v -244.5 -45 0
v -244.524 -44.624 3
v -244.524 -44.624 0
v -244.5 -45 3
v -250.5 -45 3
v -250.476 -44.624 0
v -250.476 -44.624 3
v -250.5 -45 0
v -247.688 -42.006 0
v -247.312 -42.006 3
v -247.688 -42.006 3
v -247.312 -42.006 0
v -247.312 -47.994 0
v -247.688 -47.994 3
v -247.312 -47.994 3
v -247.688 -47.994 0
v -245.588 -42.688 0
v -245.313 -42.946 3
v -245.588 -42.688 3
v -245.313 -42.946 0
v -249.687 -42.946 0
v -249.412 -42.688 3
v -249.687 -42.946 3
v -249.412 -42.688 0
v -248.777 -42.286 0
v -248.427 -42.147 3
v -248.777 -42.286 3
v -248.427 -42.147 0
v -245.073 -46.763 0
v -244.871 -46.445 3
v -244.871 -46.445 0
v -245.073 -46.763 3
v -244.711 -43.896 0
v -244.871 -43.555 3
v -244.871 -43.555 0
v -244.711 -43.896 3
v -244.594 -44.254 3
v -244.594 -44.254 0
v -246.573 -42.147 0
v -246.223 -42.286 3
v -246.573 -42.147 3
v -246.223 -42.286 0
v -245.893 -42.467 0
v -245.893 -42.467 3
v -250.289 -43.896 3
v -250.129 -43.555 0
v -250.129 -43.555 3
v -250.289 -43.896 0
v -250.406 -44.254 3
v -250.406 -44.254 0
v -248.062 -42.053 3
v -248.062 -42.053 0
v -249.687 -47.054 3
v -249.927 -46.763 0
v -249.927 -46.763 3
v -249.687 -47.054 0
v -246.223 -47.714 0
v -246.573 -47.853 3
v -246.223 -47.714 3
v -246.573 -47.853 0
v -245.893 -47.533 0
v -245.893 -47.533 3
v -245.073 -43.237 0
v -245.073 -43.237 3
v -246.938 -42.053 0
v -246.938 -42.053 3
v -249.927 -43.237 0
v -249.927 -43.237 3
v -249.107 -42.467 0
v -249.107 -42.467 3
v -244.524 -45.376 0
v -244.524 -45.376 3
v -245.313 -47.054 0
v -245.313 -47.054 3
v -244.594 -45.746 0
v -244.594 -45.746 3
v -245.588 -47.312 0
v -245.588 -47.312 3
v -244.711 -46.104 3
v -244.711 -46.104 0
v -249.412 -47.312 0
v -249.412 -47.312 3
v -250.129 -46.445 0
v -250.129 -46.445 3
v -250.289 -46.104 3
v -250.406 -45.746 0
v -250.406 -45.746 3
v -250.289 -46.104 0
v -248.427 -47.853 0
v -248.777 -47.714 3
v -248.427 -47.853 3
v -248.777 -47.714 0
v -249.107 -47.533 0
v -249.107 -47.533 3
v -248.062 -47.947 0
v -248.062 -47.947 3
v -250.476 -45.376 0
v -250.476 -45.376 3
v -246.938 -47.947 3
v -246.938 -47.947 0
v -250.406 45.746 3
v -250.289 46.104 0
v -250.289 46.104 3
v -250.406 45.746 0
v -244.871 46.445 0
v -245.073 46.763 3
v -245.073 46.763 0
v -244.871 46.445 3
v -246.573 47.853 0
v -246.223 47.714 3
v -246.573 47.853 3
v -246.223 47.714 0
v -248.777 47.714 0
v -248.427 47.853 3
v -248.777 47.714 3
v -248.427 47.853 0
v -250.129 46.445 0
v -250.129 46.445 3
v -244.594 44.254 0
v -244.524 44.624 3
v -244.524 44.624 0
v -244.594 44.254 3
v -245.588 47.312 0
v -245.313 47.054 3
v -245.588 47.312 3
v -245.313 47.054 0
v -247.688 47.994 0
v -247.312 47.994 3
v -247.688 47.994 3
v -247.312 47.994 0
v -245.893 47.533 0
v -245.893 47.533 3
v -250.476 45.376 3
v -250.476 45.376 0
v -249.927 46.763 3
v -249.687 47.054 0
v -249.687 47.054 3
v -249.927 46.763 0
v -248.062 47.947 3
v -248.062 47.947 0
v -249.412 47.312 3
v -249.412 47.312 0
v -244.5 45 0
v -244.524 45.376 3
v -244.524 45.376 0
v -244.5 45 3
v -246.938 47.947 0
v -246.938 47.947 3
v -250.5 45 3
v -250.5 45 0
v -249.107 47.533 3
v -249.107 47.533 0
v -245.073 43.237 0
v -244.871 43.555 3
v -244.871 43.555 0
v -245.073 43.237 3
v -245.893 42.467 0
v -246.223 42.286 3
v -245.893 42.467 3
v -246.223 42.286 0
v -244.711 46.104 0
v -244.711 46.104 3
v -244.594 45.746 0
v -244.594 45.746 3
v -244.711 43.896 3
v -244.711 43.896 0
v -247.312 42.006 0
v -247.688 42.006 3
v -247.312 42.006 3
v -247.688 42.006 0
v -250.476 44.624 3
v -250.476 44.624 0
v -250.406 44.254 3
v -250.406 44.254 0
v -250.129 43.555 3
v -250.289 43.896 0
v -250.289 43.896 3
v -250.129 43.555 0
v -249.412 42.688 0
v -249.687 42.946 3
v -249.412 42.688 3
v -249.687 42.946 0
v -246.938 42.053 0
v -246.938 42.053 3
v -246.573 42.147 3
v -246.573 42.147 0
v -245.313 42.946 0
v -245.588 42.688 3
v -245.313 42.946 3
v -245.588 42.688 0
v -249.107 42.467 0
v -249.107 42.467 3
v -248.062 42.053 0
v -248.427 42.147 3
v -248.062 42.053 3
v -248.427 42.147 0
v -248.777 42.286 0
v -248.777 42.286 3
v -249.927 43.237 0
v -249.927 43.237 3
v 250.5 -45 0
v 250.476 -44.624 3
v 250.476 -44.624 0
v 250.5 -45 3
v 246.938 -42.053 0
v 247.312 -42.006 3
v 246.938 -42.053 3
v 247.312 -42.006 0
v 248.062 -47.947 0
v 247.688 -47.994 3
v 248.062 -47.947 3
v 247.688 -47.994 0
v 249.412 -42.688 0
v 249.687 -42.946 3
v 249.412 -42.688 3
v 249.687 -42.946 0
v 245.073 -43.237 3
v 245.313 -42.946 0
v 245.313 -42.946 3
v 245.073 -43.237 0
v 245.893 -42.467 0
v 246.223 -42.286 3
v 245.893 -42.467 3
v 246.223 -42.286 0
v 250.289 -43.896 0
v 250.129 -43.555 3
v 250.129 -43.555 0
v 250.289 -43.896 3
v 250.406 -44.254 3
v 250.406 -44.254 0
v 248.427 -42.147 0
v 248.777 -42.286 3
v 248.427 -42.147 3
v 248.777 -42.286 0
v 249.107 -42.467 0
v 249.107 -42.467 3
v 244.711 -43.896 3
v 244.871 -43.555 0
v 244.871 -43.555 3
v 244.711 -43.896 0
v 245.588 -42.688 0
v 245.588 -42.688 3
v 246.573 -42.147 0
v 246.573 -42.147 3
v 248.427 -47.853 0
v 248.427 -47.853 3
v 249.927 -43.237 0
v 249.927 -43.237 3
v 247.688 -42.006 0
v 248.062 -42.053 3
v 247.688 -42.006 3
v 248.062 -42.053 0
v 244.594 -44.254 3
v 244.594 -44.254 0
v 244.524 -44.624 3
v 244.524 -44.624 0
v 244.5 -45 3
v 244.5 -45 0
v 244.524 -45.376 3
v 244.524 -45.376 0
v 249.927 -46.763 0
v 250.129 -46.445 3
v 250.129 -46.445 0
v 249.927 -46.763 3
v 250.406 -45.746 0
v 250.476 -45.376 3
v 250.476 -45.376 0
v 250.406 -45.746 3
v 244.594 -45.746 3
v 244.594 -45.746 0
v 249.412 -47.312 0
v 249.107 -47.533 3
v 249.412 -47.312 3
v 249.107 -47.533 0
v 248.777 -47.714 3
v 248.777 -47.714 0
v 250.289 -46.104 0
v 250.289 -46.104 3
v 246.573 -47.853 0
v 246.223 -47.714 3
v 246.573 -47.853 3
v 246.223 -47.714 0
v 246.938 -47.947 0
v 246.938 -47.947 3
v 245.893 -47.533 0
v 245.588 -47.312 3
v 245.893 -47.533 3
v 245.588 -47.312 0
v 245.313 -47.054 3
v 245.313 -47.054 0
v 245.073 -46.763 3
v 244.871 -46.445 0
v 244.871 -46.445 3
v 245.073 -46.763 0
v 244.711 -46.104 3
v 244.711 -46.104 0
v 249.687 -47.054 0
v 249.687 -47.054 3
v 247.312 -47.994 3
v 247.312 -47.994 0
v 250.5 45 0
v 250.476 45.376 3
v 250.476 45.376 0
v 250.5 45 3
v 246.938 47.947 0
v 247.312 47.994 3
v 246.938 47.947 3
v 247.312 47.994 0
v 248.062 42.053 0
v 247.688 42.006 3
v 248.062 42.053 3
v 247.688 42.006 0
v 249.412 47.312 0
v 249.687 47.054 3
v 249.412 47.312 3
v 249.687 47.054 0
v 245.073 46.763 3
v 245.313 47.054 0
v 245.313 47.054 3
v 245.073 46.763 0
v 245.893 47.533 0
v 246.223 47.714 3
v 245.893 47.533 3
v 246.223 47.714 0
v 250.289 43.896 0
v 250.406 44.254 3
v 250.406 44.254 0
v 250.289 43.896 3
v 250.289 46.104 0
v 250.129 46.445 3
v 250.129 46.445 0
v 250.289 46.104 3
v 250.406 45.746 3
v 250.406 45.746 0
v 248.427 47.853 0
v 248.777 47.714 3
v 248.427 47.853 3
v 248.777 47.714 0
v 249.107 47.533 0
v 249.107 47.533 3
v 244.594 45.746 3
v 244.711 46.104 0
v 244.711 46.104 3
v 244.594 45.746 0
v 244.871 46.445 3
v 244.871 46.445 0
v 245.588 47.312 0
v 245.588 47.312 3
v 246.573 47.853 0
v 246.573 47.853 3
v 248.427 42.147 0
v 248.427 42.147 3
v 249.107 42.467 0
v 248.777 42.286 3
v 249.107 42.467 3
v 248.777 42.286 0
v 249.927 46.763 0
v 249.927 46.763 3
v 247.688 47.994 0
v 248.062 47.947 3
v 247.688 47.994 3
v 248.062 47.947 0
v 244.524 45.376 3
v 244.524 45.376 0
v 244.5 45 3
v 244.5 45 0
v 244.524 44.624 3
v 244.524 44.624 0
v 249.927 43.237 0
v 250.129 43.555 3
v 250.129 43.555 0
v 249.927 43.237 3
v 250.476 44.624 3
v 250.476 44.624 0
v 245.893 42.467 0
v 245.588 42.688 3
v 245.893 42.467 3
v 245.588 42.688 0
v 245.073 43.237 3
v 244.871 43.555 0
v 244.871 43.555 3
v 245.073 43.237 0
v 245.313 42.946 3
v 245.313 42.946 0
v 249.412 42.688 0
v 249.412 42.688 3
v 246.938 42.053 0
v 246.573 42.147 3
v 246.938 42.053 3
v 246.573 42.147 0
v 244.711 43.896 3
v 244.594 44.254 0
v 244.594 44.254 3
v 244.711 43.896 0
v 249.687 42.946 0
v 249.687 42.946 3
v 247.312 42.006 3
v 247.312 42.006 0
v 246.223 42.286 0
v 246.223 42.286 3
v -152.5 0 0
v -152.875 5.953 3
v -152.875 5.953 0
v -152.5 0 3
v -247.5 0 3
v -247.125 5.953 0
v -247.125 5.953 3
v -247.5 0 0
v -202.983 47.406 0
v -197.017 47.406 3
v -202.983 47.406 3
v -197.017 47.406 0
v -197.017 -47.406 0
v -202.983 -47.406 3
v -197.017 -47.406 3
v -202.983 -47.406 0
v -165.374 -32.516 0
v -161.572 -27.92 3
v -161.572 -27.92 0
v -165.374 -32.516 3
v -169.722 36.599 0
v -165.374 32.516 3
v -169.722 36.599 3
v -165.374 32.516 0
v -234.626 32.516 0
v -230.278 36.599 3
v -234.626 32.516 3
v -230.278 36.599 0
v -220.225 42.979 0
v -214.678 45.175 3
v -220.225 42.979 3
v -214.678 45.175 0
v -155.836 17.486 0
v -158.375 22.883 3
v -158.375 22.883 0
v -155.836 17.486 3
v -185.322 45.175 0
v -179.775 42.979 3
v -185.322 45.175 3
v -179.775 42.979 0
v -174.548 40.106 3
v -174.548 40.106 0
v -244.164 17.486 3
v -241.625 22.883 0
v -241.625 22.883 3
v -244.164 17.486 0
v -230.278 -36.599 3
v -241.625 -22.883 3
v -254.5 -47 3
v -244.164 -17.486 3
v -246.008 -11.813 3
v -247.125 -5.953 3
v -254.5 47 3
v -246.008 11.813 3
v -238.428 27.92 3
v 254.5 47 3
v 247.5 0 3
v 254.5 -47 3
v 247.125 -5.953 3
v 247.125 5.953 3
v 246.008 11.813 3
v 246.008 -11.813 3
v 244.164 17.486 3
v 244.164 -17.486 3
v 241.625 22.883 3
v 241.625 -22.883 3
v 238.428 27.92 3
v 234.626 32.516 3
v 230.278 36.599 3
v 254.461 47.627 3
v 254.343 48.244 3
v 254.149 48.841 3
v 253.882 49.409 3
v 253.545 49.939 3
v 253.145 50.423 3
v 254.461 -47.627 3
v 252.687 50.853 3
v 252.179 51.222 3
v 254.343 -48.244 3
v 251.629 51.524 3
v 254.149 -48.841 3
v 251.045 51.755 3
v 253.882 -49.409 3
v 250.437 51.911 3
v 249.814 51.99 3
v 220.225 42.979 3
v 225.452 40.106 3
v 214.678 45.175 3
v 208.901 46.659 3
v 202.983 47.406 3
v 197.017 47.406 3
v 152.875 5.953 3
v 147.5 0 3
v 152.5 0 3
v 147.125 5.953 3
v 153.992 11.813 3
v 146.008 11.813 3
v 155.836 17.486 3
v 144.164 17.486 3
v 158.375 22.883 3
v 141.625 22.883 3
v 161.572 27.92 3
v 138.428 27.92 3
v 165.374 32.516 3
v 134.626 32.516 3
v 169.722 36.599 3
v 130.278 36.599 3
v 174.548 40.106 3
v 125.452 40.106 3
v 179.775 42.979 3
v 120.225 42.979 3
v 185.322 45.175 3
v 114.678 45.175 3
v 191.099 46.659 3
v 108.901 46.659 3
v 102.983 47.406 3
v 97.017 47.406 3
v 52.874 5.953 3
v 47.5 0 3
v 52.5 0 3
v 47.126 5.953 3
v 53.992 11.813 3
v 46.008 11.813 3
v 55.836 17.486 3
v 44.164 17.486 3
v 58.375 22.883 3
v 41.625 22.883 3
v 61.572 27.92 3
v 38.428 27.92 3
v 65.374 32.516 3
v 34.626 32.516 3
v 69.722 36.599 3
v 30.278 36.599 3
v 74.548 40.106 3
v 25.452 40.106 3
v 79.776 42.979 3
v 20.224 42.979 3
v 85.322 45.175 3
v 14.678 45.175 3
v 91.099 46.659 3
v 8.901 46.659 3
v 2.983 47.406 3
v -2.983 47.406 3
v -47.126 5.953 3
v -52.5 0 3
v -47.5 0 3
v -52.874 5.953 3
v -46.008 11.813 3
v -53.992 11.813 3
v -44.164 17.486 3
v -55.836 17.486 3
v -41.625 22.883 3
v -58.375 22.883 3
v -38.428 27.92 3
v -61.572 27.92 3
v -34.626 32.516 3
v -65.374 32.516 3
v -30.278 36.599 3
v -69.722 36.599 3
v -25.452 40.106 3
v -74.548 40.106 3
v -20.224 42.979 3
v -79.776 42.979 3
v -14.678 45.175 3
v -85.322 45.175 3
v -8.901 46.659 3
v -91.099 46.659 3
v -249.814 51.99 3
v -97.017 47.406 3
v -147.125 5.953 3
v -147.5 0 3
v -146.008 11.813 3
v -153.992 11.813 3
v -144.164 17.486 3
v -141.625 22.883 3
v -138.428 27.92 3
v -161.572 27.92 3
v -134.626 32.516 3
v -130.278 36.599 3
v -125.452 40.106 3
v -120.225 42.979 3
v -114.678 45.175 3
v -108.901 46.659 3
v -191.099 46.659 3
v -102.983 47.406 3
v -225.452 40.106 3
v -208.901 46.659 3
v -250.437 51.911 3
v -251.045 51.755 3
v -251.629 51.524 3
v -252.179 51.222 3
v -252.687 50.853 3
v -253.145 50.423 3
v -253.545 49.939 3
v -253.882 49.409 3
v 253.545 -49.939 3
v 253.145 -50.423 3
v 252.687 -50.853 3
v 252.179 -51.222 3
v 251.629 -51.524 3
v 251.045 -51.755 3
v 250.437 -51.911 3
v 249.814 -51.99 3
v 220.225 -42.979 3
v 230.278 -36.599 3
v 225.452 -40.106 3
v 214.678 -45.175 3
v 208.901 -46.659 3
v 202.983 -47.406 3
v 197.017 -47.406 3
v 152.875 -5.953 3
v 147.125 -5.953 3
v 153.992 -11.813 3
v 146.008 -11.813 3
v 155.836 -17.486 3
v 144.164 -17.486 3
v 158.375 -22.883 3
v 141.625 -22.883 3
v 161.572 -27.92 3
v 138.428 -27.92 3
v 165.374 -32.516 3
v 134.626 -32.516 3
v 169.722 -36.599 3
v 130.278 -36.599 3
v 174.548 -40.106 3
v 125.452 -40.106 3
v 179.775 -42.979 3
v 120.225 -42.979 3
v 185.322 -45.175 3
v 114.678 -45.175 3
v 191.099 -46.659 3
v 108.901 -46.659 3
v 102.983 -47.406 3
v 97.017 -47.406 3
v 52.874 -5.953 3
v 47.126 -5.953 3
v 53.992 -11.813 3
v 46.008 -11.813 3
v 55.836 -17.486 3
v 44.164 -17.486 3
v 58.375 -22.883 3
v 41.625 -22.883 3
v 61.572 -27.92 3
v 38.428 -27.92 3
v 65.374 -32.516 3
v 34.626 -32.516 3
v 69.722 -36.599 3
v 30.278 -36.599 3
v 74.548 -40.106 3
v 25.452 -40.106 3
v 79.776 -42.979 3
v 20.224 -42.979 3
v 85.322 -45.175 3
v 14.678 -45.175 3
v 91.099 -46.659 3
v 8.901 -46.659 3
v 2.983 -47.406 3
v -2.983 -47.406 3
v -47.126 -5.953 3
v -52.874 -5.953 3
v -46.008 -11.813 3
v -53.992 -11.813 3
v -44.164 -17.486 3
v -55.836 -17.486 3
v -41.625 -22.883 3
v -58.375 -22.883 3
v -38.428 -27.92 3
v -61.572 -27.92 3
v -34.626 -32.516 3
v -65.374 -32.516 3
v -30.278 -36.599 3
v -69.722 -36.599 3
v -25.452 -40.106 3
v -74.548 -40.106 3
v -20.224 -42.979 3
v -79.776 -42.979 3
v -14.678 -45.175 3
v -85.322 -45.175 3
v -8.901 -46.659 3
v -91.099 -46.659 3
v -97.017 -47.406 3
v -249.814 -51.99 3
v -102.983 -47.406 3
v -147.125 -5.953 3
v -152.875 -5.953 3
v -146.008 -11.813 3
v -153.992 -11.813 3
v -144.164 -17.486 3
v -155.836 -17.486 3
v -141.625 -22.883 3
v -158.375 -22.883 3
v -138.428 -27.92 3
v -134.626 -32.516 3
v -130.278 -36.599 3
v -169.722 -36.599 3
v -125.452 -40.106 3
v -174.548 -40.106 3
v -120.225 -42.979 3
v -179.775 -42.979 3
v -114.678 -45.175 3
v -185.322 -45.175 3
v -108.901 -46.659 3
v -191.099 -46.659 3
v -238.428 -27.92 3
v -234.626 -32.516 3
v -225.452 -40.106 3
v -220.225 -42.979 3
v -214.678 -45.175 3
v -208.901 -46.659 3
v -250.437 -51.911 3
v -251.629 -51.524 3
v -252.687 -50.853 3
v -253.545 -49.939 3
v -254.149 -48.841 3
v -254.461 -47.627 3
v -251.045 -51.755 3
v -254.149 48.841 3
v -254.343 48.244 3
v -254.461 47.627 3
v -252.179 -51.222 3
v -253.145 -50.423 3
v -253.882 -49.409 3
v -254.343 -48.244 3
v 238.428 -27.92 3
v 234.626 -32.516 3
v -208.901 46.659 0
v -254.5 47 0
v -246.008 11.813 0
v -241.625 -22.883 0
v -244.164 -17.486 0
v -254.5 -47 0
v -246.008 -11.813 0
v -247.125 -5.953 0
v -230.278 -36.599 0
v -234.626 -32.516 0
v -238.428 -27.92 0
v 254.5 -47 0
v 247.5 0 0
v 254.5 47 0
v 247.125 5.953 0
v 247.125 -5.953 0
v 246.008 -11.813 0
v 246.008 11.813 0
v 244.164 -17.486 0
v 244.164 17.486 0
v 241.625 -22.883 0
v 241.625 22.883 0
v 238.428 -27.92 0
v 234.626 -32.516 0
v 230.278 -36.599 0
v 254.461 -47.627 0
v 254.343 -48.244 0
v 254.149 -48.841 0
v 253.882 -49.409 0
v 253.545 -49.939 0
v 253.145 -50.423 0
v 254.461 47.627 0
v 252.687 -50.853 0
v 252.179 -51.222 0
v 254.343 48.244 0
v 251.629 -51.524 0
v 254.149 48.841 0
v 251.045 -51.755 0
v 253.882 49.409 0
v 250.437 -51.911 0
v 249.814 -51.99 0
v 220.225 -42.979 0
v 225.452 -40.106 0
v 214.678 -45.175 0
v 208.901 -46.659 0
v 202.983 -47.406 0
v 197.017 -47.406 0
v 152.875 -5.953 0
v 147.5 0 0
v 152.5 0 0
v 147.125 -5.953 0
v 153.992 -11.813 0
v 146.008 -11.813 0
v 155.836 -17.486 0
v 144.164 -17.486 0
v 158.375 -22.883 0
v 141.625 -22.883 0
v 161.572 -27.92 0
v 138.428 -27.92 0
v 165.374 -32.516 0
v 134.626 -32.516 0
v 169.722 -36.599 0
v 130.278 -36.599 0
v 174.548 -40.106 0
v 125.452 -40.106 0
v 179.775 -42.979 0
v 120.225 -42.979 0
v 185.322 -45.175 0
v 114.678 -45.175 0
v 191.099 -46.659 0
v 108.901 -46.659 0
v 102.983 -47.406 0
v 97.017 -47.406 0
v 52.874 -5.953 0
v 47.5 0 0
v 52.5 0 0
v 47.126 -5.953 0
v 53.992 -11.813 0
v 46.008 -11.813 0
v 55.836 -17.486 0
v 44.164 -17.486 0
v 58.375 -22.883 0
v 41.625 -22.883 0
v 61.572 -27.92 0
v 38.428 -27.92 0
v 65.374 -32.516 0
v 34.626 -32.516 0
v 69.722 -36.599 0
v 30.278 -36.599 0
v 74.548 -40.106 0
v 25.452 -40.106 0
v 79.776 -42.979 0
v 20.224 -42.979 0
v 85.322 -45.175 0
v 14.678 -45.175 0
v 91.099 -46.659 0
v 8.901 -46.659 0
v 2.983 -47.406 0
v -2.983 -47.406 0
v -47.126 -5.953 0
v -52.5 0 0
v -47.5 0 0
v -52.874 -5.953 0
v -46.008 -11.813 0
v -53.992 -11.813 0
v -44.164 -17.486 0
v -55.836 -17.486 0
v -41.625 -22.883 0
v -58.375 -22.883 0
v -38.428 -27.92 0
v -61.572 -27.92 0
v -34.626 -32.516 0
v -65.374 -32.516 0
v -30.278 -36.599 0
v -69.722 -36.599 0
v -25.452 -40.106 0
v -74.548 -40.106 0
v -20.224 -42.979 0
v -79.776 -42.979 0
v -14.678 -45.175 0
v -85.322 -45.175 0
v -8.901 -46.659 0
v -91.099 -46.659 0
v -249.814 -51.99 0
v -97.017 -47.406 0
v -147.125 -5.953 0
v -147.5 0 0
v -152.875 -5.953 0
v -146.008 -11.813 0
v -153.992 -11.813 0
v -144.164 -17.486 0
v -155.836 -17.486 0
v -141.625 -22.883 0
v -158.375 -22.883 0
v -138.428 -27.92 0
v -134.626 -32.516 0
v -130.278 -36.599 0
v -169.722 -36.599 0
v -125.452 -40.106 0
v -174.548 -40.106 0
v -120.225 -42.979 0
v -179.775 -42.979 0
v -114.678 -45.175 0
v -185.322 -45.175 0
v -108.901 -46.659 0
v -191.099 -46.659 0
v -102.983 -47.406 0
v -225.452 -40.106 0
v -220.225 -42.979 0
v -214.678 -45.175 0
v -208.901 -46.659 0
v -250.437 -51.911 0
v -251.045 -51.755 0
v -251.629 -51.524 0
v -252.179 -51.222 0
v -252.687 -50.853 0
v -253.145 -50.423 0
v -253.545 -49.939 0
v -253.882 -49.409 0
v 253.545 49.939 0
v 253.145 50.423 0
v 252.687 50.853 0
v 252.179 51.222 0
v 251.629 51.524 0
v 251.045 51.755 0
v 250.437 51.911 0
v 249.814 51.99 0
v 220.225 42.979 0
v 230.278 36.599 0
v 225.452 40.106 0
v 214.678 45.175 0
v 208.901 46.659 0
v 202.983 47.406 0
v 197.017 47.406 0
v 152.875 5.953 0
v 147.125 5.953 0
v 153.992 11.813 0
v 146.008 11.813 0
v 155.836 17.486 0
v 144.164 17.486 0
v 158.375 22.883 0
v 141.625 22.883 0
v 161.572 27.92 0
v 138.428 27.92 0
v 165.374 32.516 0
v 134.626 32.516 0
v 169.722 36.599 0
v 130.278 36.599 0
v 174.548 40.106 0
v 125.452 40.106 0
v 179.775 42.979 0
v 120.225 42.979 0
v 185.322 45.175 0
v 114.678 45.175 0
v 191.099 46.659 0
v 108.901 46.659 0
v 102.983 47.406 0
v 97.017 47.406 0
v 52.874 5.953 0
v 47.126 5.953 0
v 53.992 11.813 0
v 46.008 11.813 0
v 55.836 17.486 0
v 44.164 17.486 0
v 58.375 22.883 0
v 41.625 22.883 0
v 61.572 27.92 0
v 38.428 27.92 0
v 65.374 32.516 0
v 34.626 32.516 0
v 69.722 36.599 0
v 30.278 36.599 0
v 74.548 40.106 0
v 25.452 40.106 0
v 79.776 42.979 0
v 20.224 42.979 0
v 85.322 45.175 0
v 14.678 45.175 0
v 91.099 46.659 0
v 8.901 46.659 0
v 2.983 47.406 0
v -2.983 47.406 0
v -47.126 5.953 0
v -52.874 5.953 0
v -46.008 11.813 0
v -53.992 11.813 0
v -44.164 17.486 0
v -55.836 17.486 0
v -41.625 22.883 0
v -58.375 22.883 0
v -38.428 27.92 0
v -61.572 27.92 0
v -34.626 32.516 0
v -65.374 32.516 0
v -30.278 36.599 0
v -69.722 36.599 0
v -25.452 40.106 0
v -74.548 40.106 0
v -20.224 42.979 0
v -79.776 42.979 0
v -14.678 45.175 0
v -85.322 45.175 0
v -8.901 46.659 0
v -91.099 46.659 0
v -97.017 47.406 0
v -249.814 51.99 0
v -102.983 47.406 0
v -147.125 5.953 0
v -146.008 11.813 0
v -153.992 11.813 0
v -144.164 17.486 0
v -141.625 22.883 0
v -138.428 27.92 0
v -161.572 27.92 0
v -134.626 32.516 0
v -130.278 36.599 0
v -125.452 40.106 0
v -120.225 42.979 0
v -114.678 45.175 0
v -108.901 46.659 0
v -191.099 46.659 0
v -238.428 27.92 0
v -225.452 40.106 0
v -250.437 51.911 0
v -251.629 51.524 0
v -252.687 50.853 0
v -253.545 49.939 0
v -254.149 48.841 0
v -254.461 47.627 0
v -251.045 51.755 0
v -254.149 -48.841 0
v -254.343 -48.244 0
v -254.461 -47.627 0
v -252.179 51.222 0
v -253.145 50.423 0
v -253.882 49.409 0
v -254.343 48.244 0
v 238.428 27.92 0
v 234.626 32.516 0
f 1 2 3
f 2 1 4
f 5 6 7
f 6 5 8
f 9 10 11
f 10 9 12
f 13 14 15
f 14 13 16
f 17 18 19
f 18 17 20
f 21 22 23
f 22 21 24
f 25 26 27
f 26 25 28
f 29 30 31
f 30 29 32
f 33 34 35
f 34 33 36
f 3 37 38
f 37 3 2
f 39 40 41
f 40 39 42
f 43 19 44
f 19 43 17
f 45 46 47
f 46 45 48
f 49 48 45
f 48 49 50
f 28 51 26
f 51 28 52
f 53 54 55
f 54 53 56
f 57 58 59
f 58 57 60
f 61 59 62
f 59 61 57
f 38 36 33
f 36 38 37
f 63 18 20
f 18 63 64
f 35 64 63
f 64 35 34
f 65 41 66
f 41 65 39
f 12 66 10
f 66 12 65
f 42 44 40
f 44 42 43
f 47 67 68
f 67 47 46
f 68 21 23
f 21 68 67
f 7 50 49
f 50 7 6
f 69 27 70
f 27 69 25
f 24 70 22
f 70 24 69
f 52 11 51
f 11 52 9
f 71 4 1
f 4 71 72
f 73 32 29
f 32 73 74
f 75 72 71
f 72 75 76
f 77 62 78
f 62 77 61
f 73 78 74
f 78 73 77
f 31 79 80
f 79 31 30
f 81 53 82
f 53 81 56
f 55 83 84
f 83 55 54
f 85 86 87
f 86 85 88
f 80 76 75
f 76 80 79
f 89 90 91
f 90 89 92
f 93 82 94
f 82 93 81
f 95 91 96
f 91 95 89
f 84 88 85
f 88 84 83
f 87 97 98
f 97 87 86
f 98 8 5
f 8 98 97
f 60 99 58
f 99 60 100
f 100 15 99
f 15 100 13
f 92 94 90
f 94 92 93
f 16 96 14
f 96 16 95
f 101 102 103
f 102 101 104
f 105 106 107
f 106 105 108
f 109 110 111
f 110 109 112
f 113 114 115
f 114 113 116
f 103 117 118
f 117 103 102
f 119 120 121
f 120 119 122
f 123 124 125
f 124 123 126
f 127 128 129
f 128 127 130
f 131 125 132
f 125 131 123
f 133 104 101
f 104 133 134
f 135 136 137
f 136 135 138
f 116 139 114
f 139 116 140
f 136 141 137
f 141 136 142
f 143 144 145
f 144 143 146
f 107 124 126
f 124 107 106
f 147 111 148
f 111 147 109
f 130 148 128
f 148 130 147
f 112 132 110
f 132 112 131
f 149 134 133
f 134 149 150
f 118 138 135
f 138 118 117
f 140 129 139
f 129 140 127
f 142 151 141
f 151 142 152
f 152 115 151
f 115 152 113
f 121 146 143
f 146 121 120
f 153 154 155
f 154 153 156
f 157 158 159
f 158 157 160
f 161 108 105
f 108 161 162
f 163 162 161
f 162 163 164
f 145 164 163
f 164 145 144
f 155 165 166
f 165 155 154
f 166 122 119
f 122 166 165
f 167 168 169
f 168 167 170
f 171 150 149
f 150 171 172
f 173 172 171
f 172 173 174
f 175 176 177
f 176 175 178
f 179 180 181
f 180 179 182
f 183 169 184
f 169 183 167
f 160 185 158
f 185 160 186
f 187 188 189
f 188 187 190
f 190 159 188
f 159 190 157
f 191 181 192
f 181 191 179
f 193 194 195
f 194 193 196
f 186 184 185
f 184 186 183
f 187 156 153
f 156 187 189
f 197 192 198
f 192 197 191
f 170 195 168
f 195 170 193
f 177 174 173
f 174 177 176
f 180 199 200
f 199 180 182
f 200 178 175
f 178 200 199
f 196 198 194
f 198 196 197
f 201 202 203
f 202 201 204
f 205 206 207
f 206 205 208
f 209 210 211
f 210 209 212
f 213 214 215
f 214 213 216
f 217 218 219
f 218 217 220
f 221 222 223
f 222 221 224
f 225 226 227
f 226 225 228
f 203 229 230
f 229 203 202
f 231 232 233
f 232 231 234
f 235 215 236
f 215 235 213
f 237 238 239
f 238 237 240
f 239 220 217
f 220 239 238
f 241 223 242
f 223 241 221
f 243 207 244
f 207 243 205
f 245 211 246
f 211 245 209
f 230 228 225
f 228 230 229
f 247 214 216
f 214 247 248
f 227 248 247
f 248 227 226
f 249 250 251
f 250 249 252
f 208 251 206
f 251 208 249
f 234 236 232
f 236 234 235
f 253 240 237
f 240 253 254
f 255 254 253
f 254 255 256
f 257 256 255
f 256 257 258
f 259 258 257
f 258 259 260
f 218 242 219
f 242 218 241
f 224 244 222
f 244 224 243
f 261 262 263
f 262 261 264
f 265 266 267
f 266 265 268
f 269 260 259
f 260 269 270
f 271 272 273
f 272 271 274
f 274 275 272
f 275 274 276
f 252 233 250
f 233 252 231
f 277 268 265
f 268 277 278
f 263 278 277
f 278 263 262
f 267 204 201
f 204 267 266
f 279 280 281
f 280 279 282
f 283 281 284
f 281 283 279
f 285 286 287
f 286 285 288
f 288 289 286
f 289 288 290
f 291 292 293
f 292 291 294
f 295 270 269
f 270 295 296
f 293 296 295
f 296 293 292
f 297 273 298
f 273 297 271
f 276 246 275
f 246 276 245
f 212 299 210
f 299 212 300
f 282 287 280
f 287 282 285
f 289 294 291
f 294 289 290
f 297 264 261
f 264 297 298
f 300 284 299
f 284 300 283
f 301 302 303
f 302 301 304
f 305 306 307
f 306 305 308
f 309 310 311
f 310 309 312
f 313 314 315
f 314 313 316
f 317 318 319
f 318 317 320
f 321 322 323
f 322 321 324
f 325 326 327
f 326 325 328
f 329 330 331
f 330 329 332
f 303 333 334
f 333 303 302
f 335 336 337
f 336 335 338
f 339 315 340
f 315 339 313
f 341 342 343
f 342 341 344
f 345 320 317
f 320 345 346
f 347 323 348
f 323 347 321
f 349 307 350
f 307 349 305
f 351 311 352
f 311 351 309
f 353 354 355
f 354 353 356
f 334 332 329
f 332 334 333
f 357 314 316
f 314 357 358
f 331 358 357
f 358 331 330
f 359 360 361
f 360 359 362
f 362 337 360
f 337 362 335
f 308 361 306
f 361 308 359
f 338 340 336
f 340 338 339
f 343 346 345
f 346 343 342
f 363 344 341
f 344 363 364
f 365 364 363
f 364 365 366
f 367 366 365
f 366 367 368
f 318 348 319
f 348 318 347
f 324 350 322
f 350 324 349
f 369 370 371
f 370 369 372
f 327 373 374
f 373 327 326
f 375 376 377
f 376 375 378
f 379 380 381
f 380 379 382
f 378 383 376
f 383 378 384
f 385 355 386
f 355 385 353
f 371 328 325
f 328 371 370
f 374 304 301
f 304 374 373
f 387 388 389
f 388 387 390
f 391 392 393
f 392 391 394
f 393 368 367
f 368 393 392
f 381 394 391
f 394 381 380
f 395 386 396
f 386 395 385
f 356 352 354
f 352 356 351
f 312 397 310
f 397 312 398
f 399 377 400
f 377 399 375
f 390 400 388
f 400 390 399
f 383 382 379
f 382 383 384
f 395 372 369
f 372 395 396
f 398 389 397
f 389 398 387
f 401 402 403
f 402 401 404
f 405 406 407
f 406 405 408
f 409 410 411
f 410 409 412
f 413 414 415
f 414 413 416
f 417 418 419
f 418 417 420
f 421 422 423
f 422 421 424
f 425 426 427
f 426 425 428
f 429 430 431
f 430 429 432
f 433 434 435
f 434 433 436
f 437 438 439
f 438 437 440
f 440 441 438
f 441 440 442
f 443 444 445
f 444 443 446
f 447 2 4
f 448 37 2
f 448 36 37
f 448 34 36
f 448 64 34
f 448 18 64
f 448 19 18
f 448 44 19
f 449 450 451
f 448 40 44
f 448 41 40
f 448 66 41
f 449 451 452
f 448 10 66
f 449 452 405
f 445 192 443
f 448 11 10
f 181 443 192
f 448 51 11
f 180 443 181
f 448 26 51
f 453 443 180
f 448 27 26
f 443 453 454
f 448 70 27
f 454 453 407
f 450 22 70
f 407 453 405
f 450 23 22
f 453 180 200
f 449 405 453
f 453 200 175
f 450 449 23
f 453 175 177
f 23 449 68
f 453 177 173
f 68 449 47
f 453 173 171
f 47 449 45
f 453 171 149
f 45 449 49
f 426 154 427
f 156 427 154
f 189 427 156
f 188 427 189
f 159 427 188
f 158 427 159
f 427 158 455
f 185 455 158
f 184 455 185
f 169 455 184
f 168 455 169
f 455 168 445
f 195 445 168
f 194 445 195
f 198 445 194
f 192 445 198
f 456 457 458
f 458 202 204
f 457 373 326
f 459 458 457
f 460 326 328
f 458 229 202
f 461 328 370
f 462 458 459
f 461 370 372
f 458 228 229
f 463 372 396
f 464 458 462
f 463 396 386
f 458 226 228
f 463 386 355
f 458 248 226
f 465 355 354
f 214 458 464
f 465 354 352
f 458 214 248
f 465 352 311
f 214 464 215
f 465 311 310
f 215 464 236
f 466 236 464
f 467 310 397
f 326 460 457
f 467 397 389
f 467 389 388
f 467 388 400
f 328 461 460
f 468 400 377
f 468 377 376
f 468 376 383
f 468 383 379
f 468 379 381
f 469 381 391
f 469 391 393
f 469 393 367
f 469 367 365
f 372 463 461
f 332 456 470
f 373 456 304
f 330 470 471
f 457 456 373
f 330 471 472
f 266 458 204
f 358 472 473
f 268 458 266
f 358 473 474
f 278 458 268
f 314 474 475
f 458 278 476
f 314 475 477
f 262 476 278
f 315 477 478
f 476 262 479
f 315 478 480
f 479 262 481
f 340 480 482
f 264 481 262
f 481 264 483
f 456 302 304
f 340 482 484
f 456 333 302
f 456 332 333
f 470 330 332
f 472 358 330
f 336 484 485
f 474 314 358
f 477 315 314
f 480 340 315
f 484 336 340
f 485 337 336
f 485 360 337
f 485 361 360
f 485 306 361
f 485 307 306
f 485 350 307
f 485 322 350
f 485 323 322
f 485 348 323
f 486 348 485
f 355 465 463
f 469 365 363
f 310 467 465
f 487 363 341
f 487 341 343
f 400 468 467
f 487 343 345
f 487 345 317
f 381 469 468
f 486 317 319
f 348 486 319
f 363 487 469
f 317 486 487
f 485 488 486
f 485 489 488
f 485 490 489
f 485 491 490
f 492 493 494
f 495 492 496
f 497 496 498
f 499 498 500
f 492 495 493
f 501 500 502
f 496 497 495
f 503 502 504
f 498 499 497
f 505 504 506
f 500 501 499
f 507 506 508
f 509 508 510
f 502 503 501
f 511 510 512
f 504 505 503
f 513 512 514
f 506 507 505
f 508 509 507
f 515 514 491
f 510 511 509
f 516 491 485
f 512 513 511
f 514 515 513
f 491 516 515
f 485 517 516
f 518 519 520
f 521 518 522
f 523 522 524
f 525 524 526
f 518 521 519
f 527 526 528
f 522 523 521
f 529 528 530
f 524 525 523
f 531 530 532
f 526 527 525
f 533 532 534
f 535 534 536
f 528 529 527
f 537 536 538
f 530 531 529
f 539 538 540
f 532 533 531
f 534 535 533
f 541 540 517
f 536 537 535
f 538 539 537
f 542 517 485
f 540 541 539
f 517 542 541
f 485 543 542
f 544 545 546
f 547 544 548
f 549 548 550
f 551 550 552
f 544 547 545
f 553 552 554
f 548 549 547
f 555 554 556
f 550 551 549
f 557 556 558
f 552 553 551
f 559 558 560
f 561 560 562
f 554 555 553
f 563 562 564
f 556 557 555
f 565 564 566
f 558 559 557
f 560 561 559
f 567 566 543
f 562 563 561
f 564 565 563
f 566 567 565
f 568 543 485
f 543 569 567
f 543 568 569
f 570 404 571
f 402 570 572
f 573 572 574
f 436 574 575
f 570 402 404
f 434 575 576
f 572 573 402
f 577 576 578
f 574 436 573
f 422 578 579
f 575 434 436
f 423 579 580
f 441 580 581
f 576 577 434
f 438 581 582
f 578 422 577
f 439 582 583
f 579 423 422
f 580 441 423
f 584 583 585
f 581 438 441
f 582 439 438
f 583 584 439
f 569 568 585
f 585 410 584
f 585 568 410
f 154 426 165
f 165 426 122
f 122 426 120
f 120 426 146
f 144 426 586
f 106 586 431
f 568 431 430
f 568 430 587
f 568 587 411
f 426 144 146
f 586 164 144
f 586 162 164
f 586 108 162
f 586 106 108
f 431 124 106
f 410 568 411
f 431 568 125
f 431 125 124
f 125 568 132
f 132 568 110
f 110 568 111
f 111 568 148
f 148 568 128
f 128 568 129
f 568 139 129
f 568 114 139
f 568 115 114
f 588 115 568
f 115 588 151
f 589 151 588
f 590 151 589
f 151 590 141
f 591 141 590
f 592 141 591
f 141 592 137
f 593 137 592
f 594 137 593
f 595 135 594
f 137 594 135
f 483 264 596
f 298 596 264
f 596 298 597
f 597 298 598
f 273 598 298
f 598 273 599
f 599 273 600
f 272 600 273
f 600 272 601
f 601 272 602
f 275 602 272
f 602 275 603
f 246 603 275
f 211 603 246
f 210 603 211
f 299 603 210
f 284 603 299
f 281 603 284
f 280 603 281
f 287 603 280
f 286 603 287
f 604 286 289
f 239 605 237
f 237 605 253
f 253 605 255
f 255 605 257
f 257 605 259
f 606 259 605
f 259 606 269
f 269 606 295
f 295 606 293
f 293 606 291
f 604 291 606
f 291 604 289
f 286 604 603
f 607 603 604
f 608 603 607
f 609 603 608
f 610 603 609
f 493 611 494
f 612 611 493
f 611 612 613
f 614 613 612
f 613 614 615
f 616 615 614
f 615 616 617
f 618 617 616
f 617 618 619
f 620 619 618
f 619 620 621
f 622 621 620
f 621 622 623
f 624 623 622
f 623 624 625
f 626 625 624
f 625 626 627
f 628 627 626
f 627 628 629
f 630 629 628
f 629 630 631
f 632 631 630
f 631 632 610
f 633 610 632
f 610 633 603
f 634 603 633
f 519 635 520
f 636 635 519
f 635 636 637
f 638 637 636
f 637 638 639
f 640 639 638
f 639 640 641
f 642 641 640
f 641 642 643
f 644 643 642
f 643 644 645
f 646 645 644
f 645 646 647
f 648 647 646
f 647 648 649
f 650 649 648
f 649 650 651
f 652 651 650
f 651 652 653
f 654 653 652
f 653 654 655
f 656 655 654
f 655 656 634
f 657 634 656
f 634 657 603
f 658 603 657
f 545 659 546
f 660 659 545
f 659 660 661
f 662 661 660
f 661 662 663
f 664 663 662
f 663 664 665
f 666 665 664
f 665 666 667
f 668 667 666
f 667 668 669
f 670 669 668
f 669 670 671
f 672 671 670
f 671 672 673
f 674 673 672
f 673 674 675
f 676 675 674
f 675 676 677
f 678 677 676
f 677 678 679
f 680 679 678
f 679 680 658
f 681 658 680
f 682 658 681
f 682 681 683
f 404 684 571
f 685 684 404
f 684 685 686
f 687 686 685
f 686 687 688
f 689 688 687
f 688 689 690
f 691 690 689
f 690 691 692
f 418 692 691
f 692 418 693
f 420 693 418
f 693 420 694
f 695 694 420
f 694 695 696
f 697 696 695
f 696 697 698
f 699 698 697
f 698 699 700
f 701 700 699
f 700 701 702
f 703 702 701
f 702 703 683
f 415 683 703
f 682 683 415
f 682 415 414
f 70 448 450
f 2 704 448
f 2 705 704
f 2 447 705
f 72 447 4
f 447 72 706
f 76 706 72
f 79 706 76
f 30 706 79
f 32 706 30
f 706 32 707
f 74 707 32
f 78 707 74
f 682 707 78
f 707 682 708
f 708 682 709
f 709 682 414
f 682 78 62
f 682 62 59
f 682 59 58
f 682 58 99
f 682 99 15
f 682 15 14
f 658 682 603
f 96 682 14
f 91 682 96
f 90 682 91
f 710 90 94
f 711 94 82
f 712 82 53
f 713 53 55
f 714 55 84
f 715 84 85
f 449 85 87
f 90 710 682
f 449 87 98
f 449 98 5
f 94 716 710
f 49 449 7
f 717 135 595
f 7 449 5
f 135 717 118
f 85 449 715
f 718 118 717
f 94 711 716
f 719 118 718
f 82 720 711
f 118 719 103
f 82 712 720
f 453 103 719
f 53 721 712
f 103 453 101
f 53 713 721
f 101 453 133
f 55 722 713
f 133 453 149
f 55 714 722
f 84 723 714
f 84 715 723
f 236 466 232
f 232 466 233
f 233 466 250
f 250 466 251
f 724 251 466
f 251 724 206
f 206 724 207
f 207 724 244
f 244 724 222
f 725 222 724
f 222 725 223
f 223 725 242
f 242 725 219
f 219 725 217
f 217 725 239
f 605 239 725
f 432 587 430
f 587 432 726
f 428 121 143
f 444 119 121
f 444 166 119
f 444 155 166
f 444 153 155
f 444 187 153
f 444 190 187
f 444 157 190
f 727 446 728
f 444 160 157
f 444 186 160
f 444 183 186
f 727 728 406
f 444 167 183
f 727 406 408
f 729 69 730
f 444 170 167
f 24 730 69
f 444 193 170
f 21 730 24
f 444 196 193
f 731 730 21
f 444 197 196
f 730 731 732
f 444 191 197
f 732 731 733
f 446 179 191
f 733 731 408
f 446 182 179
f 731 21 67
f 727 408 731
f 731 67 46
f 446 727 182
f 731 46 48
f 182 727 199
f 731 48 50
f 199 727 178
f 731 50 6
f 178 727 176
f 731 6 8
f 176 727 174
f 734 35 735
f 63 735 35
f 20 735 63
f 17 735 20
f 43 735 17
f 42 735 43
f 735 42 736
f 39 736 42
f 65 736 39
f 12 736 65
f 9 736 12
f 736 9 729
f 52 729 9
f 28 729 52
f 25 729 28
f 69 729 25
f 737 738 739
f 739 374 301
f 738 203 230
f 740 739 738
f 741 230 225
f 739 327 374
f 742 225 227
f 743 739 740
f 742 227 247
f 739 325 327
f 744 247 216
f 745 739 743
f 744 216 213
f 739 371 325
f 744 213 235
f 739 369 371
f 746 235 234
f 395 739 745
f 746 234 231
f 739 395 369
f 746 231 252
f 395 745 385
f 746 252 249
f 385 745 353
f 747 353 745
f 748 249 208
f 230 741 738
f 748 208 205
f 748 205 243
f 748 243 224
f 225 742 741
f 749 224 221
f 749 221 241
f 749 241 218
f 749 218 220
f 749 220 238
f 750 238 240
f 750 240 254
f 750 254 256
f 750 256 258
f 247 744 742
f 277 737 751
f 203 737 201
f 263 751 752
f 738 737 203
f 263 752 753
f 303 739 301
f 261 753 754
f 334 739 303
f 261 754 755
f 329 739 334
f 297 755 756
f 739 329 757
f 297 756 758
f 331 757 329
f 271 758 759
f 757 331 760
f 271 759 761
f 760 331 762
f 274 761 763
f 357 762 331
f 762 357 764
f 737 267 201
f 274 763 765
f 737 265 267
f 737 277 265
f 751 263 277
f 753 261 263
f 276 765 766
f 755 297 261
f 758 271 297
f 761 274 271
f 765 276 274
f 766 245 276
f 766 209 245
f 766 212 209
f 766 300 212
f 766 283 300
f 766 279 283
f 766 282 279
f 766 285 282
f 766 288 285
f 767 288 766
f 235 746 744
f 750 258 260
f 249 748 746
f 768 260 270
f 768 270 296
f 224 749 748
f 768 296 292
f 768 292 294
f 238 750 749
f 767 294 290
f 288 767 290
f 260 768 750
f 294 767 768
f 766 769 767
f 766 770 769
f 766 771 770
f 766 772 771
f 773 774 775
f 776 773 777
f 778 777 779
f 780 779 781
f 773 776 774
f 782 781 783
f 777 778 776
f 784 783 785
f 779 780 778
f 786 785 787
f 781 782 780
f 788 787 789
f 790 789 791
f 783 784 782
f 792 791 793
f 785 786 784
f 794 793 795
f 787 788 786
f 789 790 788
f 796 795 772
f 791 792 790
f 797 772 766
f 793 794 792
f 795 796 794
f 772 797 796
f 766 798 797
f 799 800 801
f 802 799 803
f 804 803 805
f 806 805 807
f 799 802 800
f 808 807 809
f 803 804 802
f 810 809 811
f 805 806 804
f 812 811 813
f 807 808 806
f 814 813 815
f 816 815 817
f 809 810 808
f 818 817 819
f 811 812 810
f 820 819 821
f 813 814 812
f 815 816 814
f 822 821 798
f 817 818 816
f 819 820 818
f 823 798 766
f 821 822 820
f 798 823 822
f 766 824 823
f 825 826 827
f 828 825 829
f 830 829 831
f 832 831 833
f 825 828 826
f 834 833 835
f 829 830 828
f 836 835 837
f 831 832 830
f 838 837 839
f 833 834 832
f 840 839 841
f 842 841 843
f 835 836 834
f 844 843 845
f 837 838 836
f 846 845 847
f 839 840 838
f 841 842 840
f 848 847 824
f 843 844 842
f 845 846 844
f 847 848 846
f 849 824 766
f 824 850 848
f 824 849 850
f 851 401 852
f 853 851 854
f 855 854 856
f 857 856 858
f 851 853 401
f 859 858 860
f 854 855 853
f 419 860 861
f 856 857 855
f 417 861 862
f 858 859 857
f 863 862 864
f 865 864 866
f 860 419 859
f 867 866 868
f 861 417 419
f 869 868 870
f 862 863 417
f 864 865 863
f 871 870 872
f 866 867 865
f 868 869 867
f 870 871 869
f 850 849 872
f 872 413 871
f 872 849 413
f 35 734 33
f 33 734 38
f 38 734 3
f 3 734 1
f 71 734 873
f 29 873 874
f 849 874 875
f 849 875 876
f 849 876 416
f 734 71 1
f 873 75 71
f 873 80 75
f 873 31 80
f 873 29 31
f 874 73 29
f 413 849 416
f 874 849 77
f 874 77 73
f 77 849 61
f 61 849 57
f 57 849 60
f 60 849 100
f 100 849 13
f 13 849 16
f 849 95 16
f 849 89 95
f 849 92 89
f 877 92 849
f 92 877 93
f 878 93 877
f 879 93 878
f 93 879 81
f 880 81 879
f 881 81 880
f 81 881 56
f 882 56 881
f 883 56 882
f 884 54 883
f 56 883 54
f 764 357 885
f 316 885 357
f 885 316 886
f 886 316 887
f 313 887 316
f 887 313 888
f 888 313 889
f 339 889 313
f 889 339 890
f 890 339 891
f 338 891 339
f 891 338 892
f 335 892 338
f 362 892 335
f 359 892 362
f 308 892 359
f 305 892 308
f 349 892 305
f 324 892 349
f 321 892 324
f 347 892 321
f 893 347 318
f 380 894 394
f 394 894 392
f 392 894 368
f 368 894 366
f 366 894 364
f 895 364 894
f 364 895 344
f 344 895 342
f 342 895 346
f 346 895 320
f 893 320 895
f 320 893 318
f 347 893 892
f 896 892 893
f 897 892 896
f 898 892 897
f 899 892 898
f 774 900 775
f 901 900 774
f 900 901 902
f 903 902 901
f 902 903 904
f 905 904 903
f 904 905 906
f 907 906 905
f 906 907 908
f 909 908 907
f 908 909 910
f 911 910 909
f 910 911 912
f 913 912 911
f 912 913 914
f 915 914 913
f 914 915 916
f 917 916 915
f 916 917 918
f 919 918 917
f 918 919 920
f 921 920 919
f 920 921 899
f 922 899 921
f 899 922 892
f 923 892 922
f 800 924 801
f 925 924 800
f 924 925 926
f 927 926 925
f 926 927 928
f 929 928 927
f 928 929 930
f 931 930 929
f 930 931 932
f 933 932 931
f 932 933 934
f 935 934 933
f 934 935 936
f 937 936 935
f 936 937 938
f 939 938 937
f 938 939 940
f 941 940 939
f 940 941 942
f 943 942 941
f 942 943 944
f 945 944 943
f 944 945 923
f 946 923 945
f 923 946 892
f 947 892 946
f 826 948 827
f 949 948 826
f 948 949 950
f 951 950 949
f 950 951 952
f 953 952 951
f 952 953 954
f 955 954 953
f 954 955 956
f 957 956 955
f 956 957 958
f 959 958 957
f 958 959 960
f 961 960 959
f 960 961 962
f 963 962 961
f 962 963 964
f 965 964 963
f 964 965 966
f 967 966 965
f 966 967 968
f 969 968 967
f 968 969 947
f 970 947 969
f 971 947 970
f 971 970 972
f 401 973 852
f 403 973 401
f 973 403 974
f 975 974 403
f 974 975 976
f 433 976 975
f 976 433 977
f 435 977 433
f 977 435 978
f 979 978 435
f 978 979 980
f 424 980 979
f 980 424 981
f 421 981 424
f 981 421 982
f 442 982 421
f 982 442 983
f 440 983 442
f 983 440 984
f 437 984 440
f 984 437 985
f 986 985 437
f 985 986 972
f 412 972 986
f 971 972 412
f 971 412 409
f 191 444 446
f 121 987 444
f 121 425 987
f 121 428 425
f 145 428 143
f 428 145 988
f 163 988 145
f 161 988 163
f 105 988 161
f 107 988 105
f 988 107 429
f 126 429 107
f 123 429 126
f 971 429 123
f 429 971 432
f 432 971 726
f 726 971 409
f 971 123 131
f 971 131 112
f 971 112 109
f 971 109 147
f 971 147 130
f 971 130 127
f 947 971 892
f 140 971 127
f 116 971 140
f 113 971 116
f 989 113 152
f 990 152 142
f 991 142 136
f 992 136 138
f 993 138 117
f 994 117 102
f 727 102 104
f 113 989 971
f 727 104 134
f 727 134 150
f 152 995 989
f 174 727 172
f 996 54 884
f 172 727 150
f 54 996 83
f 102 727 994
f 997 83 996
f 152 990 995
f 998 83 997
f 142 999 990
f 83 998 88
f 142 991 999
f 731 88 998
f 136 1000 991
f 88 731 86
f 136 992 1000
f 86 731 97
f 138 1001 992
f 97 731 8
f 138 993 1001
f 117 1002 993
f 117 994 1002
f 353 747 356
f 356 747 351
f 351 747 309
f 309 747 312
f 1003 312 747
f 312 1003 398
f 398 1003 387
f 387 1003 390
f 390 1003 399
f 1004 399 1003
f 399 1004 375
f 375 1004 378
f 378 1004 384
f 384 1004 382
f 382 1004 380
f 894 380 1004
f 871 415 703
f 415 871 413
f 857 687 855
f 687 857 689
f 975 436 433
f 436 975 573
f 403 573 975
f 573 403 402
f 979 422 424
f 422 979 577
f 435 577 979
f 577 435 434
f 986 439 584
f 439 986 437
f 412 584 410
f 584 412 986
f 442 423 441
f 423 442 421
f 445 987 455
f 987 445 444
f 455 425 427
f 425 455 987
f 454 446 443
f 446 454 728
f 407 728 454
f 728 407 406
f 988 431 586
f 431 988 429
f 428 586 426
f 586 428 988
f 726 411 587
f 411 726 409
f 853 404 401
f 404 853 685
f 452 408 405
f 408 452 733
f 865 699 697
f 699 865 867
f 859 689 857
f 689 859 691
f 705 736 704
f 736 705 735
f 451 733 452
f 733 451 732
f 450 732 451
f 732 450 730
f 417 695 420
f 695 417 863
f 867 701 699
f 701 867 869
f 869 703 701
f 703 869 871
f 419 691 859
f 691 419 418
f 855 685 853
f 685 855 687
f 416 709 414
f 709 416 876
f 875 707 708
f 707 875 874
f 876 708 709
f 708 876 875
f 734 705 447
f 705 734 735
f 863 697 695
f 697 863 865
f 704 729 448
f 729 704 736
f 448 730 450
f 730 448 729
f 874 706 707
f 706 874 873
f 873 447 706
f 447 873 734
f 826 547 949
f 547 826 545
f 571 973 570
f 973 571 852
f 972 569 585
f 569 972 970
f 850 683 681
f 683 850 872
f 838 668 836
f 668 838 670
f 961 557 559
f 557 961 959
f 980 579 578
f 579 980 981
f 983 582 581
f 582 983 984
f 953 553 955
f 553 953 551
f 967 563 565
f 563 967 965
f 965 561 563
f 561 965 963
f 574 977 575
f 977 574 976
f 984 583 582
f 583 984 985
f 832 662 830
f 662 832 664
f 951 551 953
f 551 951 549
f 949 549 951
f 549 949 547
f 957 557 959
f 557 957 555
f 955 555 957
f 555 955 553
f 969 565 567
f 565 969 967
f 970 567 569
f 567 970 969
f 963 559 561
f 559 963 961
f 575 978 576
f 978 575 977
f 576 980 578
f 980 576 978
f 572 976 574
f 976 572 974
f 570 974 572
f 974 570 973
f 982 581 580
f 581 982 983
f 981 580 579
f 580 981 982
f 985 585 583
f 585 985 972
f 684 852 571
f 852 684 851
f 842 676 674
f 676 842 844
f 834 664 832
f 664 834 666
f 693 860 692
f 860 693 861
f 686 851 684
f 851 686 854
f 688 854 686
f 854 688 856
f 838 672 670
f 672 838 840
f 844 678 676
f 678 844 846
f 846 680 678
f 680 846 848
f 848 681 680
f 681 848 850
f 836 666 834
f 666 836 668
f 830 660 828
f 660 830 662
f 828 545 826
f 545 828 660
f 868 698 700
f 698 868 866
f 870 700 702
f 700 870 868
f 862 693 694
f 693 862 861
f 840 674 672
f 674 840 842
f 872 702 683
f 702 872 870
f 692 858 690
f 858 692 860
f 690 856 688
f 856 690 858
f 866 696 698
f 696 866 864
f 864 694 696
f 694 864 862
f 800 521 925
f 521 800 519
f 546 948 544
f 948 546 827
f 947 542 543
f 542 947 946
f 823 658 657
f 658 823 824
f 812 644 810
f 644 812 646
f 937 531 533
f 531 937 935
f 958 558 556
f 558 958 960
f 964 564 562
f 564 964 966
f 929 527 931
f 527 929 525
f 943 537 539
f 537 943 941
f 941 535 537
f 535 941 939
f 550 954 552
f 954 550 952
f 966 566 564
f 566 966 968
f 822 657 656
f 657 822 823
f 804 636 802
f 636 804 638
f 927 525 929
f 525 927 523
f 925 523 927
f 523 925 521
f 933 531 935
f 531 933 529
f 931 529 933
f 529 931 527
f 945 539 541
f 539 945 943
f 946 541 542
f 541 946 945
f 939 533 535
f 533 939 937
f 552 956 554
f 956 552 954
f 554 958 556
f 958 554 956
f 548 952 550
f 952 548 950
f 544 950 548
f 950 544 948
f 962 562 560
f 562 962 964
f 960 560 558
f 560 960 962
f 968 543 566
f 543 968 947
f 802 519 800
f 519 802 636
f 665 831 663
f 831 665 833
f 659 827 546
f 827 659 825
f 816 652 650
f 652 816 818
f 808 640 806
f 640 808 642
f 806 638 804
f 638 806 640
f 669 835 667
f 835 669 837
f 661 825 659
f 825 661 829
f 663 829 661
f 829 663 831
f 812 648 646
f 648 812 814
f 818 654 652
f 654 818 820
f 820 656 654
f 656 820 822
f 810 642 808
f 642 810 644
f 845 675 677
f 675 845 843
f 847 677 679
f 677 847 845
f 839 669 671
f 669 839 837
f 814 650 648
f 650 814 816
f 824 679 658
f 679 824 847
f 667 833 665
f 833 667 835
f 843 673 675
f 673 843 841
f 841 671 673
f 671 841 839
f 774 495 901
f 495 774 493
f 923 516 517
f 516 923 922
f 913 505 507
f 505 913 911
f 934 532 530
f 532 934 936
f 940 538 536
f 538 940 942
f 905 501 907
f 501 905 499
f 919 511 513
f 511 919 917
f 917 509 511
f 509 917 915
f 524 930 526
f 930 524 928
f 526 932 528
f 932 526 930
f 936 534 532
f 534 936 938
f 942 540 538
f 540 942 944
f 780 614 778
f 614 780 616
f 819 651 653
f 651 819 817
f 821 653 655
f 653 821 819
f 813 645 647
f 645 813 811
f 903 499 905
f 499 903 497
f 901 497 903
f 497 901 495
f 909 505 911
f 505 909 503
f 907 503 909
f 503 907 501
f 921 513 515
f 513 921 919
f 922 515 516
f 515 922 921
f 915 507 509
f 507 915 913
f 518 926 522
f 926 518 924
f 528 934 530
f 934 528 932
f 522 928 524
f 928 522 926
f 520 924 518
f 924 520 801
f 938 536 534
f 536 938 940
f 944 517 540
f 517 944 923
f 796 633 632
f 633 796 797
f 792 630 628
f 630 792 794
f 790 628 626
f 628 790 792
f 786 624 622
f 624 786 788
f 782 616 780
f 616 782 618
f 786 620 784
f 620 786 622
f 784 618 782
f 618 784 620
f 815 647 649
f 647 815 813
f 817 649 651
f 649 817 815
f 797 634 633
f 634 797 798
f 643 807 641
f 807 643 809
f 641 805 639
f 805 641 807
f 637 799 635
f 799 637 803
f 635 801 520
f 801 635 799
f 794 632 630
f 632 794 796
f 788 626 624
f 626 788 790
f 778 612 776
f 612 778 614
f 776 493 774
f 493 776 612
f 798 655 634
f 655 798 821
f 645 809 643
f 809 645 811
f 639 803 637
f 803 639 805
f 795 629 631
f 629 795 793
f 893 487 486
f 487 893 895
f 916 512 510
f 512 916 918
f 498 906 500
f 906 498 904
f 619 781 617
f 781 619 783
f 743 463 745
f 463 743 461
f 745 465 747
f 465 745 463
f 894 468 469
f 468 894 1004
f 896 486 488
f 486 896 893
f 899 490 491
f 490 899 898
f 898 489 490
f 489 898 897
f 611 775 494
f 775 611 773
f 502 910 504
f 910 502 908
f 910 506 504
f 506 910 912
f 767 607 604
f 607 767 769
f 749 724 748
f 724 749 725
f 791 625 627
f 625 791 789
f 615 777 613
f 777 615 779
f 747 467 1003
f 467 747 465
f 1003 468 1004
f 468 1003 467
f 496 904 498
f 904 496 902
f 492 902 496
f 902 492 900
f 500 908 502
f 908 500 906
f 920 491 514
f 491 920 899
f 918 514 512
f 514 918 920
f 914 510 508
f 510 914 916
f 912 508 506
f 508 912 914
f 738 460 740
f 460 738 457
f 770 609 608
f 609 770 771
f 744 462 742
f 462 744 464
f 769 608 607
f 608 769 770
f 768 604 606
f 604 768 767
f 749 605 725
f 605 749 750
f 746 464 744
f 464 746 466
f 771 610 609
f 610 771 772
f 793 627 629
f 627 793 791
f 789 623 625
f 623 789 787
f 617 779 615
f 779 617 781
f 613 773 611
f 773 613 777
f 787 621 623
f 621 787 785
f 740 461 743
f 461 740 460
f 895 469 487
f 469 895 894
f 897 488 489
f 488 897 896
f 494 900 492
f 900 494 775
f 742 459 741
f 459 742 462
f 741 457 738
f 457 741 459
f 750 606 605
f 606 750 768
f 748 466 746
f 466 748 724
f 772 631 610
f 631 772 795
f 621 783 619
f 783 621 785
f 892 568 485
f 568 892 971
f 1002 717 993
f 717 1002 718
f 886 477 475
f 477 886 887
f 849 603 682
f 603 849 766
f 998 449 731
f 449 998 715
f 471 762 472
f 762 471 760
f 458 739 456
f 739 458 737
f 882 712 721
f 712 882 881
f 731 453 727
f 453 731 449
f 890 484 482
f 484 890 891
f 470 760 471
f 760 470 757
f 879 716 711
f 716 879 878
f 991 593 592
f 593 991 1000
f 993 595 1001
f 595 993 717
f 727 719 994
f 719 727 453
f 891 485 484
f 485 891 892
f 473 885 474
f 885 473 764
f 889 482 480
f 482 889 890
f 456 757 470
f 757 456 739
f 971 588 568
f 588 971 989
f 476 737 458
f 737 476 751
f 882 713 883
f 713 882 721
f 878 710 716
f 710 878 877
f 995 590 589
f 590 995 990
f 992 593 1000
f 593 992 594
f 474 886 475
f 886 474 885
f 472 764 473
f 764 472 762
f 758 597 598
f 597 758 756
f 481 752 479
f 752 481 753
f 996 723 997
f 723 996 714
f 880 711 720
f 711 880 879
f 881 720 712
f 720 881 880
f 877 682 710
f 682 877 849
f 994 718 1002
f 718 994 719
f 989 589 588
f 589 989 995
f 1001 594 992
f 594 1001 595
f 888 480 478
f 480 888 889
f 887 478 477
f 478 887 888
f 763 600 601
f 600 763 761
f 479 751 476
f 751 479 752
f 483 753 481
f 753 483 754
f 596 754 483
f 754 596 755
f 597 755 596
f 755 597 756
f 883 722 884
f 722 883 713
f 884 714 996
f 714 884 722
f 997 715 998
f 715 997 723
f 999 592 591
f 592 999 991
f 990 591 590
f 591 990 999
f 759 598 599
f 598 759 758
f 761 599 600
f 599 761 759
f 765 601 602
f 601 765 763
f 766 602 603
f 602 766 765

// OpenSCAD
$fn = 50;


difference() {
	union() {
		hull() {
			translate(v = [-249.5000000000, 47.0000000000, 0]) {
				cylinder(h = 3, r = 5);
			}
			translate(v = [249.5000000000, 47.0000000000, 0]) {
				cylinder(h = 3, r = 5);
			}
			translate(v = [-249.5000000000, -47.0000000000, 0]) {
				cylinder(h = 3, r = 5);
			}
			translate(v = [249.5000000000, -47.0000000000, 0]) {
				cylinder(h = 3, r = 5);
			}
		}
	}
	union() {
		#translate(v = [-247.5000000000, -45.0000000000, -100.0000000000]) {
			cylinder(h = 200, r = 3.0000000000);
		}
		#translate(v = [-247.5000000000, 45.0000000000, -100.0000000000]) {
			cylinder(h = 200, r = 3.0000000000);
		}
		#translate(v = [247.5000000000, -45.0000000000, -100.0000000000]) {
			cylinder(h = 200, r = 3.0000000000);
		}
		#translate(v = [247.5000000000, 45.0000000000, -100.0000000000]) {
			cylinder(h = 200, r = 3.0000000000);
		}
		#translate(v = [-200.0000000000, 0, 0]) {
			cylinder(h = 3, r = 47.5000000000);
		}
		#translate(v = [-100.0000000000, 0, 0]) {
			cylinder(h = 3, r = 47.5000000000);
		}
		#cylinder(h = 3, r = 47.5000000000);
		#translate(v = [100.0000000000, 0, 0]) {
			cylinder(h = 3, r = 47.5000000000);
		}
		#translate(v = [200.0000000000, 0, 0]) {
			cylinder(h = 3, r = 47.5000000000);
		}
	}
}
